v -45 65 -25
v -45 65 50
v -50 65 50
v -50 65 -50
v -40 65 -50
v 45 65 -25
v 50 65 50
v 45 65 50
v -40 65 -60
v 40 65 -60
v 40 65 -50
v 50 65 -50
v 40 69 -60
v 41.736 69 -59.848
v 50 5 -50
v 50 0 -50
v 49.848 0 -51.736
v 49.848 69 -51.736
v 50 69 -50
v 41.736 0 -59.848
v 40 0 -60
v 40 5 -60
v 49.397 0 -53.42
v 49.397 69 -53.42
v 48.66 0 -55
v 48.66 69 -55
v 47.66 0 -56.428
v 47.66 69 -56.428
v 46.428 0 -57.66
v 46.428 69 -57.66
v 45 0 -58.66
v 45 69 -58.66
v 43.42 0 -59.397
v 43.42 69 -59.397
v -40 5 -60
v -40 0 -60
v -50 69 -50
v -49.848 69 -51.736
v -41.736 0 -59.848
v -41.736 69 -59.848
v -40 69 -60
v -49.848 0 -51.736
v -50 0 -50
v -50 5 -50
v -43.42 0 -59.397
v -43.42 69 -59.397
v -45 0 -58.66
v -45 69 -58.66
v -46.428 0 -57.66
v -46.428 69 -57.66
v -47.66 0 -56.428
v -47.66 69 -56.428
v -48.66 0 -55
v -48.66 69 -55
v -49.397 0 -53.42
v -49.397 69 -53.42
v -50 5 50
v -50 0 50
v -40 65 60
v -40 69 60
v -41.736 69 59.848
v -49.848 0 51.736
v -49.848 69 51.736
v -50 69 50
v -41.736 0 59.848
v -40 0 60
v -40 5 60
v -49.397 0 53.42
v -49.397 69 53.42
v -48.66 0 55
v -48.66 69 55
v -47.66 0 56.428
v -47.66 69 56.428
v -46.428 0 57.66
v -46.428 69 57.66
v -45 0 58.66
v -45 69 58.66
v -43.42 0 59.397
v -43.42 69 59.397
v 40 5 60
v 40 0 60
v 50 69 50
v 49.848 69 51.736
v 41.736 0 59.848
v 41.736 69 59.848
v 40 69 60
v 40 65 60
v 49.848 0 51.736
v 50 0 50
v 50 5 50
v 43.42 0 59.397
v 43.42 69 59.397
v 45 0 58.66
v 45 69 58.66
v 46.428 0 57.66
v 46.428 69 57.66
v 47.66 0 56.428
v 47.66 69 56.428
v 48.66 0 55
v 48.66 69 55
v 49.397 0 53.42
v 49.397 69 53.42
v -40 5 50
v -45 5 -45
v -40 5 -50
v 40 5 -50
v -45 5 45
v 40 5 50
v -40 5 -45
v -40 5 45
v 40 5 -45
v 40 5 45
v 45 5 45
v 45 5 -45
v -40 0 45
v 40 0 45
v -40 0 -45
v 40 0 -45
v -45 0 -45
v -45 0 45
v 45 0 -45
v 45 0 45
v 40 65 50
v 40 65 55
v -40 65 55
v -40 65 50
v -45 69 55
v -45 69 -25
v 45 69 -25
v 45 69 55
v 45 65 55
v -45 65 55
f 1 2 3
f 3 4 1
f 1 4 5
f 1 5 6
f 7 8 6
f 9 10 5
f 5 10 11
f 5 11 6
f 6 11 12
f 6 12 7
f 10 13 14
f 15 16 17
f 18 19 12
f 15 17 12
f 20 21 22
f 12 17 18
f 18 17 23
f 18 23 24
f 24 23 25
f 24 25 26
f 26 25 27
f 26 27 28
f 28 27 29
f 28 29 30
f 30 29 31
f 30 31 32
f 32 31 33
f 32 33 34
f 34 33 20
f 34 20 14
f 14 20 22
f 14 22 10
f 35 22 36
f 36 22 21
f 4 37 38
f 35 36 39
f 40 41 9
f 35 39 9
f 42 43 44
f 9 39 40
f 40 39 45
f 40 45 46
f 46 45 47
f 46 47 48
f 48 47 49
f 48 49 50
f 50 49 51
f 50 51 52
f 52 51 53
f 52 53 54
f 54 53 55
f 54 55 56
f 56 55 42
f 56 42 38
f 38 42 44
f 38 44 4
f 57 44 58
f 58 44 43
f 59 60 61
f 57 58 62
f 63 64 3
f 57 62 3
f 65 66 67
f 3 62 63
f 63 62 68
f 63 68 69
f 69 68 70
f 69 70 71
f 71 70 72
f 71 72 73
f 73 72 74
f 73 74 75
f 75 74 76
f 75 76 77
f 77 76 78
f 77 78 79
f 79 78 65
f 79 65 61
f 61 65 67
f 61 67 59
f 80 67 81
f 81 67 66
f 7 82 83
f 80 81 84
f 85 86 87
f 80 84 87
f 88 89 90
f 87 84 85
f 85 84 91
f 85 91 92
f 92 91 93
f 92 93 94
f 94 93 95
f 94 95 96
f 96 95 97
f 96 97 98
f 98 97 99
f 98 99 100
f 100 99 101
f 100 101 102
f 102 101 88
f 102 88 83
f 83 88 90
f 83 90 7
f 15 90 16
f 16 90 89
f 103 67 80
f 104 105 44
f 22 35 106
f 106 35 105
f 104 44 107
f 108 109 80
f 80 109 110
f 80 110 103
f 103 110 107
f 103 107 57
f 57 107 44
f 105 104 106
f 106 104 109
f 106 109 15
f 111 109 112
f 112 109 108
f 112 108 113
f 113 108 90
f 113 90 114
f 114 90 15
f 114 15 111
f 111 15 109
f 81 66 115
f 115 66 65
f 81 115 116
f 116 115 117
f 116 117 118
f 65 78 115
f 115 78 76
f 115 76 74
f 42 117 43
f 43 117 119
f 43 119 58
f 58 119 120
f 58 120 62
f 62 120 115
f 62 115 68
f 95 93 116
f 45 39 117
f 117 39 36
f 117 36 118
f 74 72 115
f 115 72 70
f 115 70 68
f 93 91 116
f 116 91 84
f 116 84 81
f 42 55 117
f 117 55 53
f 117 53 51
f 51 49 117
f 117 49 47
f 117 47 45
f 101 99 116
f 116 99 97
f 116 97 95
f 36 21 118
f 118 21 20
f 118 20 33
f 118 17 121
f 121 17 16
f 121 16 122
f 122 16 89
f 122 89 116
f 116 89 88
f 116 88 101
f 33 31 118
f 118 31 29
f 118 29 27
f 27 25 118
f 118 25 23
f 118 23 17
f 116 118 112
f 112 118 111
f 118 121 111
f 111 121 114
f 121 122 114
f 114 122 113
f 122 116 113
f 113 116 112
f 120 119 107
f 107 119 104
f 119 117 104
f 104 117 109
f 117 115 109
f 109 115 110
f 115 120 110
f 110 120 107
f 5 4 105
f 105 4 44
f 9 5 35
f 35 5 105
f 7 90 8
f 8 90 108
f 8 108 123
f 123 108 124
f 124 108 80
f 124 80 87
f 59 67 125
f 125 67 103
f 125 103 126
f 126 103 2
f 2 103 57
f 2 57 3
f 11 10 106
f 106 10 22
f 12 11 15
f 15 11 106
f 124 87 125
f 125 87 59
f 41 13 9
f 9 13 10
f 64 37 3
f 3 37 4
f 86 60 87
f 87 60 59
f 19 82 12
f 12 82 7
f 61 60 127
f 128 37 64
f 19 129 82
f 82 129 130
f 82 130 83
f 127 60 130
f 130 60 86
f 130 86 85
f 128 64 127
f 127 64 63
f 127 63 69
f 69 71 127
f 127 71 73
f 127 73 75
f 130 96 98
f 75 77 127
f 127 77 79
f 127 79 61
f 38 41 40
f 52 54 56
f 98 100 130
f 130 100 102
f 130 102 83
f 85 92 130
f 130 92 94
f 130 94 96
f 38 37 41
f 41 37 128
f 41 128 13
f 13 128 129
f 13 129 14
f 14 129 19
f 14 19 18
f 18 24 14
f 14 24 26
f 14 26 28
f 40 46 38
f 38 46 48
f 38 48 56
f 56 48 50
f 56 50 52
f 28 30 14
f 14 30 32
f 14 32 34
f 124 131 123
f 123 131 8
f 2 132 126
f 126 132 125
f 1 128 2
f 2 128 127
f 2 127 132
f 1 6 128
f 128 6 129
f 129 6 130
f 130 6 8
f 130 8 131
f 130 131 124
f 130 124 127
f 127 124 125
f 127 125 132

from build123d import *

# Parameters (mm, degrees)
BOSS_EXTRUDE1_DEPTH = 5
SKETCH2_W           = 5
SKETCH2_H           = 90
CUT_EXTRUDE1_DEPTH  = 79.262379212
BOSS_EXTRUDE3_DEPTH = 60
BOSS_EXTRUDE4_DEPTH = 4
SKETCH5_W           = 90
SKETCH5_H           = 80
CUT_EXTRUDE2_DEPTH  = 4


with BuildPart() as part:
    # Sketch1 → Boss-Extrude1 (new body)
    with BuildSketch(Plane(origin=(0, 0, 0), x_dir=(1, 0, 0), z_dir=(0, 1, 0))):
        with BuildLine():
            Line((-40, 60), (40, 60))
            ThreePointArc((40, 60), (47.071067812, 57.071067812), (50, 50))
            Line((50, 50), (50, -50))
            ThreePointArc((50, -50), (47.071067812, -57.071067812), (40, -60))
            Line((40, -60), (-40, -60))
            ThreePointArc((-40, -60), (-47.071067812, -57.071067812), (-50, -50))
            Line((-50, -50), (-50, 50))
            ThreePointArc((-50, 50), (-47.071067812, 57.071067812), (-40, 60))
        make_face()
    extrude(amount=BOSS_EXTRUDE1_DEPTH)

    # Sketch2 → Cut-Extrude1 (cut, through all)
    with BuildSketch(Plane(origin=(0, 5, 0), x_dir=(1, 0, 0), z_dir=(0, 1, 0))):
        with Locations((-42.5, 0)):
            Rectangle(SKETCH2_W, SKETCH2_H)
        with Locations((42.5, 0)):
            Rectangle(SKETCH2_W, SKETCH2_H)
    extrude(amount=-CUT_EXTRUDE1_DEPTH, mode=Mode.SUBTRACT)

    # Sketch3 → Boss-Extrude3 (add)
    with BuildSketch(Plane(origin=(0, 5, 0), x_dir=(1, 0, 0), z_dir=(0, 1, 0))):
        with BuildLine():
            Line((-50, 50), (-40, 50))
            Line((-40, 50), (-40, 60))
            ThreePointArc((-40, 60), (-47.071067812, 57.071067812), (-50, 50))
        make_face()
        with BuildLine():
            Line((40, 60), (40, 50))
            Line((40, 50), (50, 50))
            ThreePointArc((50, 50), (47.071067812, 57.071067812), (40, 60))
        make_face()
        with BuildLine():
            Line((-50, -50), (-40, -50))
            Line((-40, -50), (-40, -60))
            ThreePointArc((-40, -60), (-47.071067812, -57.071067812), (-50, -50))
        make_face()
        with BuildLine():
            Line((50, -50), (40, -50))
            Line((40, -50), (40, -60))
            ThreePointArc((40, -60), (47.071067812, -57.071067812), (50, -50))
        make_face()
    extrude(amount=BOSS_EXTRUDE3_DEPTH)

    # Sketch4 → Boss-Extrude4 (add)
    with BuildSketch(Plane(origin=(0, 65, 0), x_dir=(1, 0, 0), z_dir=(0, 1, 0))):
        with BuildLine():
            Line((50, -50), (50, 50))
            ThreePointArc((50, 50), (47.071067812, 57.071067812), (40, 60))
            Line((40, 60), (-40, 60))
            ThreePointArc((-40, 60), (-47.071067812, 57.071067812), (-50, 50))
            Line((-50, 50), (-50, -50))
            ThreePointArc((-50, -50), (-47.071067812, -57.071067812), (-40, -60))
            Line((-40, -60), (40, -60))
            ThreePointArc((40, -60), (47.071067812, -57.071067812), (50, -50))
        make_face()
    extrude(amount=BOSS_EXTRUDE4_DEPTH)

    # Sketch5 → Cut-Extrude2 (cut)
    with BuildSketch(Plane(origin=(0, 69, 0), x_dir=(1, 0, 0), z_dir=(0, 1, 0))):
        with Locations((0, -15)):
            Rectangle(SKETCH5_W, SKETCH5_H)
    extrude(amount=-CUT_EXTRUDE2_DEPTH, mode=Mode.SUBTRACT)


solid = part.part
